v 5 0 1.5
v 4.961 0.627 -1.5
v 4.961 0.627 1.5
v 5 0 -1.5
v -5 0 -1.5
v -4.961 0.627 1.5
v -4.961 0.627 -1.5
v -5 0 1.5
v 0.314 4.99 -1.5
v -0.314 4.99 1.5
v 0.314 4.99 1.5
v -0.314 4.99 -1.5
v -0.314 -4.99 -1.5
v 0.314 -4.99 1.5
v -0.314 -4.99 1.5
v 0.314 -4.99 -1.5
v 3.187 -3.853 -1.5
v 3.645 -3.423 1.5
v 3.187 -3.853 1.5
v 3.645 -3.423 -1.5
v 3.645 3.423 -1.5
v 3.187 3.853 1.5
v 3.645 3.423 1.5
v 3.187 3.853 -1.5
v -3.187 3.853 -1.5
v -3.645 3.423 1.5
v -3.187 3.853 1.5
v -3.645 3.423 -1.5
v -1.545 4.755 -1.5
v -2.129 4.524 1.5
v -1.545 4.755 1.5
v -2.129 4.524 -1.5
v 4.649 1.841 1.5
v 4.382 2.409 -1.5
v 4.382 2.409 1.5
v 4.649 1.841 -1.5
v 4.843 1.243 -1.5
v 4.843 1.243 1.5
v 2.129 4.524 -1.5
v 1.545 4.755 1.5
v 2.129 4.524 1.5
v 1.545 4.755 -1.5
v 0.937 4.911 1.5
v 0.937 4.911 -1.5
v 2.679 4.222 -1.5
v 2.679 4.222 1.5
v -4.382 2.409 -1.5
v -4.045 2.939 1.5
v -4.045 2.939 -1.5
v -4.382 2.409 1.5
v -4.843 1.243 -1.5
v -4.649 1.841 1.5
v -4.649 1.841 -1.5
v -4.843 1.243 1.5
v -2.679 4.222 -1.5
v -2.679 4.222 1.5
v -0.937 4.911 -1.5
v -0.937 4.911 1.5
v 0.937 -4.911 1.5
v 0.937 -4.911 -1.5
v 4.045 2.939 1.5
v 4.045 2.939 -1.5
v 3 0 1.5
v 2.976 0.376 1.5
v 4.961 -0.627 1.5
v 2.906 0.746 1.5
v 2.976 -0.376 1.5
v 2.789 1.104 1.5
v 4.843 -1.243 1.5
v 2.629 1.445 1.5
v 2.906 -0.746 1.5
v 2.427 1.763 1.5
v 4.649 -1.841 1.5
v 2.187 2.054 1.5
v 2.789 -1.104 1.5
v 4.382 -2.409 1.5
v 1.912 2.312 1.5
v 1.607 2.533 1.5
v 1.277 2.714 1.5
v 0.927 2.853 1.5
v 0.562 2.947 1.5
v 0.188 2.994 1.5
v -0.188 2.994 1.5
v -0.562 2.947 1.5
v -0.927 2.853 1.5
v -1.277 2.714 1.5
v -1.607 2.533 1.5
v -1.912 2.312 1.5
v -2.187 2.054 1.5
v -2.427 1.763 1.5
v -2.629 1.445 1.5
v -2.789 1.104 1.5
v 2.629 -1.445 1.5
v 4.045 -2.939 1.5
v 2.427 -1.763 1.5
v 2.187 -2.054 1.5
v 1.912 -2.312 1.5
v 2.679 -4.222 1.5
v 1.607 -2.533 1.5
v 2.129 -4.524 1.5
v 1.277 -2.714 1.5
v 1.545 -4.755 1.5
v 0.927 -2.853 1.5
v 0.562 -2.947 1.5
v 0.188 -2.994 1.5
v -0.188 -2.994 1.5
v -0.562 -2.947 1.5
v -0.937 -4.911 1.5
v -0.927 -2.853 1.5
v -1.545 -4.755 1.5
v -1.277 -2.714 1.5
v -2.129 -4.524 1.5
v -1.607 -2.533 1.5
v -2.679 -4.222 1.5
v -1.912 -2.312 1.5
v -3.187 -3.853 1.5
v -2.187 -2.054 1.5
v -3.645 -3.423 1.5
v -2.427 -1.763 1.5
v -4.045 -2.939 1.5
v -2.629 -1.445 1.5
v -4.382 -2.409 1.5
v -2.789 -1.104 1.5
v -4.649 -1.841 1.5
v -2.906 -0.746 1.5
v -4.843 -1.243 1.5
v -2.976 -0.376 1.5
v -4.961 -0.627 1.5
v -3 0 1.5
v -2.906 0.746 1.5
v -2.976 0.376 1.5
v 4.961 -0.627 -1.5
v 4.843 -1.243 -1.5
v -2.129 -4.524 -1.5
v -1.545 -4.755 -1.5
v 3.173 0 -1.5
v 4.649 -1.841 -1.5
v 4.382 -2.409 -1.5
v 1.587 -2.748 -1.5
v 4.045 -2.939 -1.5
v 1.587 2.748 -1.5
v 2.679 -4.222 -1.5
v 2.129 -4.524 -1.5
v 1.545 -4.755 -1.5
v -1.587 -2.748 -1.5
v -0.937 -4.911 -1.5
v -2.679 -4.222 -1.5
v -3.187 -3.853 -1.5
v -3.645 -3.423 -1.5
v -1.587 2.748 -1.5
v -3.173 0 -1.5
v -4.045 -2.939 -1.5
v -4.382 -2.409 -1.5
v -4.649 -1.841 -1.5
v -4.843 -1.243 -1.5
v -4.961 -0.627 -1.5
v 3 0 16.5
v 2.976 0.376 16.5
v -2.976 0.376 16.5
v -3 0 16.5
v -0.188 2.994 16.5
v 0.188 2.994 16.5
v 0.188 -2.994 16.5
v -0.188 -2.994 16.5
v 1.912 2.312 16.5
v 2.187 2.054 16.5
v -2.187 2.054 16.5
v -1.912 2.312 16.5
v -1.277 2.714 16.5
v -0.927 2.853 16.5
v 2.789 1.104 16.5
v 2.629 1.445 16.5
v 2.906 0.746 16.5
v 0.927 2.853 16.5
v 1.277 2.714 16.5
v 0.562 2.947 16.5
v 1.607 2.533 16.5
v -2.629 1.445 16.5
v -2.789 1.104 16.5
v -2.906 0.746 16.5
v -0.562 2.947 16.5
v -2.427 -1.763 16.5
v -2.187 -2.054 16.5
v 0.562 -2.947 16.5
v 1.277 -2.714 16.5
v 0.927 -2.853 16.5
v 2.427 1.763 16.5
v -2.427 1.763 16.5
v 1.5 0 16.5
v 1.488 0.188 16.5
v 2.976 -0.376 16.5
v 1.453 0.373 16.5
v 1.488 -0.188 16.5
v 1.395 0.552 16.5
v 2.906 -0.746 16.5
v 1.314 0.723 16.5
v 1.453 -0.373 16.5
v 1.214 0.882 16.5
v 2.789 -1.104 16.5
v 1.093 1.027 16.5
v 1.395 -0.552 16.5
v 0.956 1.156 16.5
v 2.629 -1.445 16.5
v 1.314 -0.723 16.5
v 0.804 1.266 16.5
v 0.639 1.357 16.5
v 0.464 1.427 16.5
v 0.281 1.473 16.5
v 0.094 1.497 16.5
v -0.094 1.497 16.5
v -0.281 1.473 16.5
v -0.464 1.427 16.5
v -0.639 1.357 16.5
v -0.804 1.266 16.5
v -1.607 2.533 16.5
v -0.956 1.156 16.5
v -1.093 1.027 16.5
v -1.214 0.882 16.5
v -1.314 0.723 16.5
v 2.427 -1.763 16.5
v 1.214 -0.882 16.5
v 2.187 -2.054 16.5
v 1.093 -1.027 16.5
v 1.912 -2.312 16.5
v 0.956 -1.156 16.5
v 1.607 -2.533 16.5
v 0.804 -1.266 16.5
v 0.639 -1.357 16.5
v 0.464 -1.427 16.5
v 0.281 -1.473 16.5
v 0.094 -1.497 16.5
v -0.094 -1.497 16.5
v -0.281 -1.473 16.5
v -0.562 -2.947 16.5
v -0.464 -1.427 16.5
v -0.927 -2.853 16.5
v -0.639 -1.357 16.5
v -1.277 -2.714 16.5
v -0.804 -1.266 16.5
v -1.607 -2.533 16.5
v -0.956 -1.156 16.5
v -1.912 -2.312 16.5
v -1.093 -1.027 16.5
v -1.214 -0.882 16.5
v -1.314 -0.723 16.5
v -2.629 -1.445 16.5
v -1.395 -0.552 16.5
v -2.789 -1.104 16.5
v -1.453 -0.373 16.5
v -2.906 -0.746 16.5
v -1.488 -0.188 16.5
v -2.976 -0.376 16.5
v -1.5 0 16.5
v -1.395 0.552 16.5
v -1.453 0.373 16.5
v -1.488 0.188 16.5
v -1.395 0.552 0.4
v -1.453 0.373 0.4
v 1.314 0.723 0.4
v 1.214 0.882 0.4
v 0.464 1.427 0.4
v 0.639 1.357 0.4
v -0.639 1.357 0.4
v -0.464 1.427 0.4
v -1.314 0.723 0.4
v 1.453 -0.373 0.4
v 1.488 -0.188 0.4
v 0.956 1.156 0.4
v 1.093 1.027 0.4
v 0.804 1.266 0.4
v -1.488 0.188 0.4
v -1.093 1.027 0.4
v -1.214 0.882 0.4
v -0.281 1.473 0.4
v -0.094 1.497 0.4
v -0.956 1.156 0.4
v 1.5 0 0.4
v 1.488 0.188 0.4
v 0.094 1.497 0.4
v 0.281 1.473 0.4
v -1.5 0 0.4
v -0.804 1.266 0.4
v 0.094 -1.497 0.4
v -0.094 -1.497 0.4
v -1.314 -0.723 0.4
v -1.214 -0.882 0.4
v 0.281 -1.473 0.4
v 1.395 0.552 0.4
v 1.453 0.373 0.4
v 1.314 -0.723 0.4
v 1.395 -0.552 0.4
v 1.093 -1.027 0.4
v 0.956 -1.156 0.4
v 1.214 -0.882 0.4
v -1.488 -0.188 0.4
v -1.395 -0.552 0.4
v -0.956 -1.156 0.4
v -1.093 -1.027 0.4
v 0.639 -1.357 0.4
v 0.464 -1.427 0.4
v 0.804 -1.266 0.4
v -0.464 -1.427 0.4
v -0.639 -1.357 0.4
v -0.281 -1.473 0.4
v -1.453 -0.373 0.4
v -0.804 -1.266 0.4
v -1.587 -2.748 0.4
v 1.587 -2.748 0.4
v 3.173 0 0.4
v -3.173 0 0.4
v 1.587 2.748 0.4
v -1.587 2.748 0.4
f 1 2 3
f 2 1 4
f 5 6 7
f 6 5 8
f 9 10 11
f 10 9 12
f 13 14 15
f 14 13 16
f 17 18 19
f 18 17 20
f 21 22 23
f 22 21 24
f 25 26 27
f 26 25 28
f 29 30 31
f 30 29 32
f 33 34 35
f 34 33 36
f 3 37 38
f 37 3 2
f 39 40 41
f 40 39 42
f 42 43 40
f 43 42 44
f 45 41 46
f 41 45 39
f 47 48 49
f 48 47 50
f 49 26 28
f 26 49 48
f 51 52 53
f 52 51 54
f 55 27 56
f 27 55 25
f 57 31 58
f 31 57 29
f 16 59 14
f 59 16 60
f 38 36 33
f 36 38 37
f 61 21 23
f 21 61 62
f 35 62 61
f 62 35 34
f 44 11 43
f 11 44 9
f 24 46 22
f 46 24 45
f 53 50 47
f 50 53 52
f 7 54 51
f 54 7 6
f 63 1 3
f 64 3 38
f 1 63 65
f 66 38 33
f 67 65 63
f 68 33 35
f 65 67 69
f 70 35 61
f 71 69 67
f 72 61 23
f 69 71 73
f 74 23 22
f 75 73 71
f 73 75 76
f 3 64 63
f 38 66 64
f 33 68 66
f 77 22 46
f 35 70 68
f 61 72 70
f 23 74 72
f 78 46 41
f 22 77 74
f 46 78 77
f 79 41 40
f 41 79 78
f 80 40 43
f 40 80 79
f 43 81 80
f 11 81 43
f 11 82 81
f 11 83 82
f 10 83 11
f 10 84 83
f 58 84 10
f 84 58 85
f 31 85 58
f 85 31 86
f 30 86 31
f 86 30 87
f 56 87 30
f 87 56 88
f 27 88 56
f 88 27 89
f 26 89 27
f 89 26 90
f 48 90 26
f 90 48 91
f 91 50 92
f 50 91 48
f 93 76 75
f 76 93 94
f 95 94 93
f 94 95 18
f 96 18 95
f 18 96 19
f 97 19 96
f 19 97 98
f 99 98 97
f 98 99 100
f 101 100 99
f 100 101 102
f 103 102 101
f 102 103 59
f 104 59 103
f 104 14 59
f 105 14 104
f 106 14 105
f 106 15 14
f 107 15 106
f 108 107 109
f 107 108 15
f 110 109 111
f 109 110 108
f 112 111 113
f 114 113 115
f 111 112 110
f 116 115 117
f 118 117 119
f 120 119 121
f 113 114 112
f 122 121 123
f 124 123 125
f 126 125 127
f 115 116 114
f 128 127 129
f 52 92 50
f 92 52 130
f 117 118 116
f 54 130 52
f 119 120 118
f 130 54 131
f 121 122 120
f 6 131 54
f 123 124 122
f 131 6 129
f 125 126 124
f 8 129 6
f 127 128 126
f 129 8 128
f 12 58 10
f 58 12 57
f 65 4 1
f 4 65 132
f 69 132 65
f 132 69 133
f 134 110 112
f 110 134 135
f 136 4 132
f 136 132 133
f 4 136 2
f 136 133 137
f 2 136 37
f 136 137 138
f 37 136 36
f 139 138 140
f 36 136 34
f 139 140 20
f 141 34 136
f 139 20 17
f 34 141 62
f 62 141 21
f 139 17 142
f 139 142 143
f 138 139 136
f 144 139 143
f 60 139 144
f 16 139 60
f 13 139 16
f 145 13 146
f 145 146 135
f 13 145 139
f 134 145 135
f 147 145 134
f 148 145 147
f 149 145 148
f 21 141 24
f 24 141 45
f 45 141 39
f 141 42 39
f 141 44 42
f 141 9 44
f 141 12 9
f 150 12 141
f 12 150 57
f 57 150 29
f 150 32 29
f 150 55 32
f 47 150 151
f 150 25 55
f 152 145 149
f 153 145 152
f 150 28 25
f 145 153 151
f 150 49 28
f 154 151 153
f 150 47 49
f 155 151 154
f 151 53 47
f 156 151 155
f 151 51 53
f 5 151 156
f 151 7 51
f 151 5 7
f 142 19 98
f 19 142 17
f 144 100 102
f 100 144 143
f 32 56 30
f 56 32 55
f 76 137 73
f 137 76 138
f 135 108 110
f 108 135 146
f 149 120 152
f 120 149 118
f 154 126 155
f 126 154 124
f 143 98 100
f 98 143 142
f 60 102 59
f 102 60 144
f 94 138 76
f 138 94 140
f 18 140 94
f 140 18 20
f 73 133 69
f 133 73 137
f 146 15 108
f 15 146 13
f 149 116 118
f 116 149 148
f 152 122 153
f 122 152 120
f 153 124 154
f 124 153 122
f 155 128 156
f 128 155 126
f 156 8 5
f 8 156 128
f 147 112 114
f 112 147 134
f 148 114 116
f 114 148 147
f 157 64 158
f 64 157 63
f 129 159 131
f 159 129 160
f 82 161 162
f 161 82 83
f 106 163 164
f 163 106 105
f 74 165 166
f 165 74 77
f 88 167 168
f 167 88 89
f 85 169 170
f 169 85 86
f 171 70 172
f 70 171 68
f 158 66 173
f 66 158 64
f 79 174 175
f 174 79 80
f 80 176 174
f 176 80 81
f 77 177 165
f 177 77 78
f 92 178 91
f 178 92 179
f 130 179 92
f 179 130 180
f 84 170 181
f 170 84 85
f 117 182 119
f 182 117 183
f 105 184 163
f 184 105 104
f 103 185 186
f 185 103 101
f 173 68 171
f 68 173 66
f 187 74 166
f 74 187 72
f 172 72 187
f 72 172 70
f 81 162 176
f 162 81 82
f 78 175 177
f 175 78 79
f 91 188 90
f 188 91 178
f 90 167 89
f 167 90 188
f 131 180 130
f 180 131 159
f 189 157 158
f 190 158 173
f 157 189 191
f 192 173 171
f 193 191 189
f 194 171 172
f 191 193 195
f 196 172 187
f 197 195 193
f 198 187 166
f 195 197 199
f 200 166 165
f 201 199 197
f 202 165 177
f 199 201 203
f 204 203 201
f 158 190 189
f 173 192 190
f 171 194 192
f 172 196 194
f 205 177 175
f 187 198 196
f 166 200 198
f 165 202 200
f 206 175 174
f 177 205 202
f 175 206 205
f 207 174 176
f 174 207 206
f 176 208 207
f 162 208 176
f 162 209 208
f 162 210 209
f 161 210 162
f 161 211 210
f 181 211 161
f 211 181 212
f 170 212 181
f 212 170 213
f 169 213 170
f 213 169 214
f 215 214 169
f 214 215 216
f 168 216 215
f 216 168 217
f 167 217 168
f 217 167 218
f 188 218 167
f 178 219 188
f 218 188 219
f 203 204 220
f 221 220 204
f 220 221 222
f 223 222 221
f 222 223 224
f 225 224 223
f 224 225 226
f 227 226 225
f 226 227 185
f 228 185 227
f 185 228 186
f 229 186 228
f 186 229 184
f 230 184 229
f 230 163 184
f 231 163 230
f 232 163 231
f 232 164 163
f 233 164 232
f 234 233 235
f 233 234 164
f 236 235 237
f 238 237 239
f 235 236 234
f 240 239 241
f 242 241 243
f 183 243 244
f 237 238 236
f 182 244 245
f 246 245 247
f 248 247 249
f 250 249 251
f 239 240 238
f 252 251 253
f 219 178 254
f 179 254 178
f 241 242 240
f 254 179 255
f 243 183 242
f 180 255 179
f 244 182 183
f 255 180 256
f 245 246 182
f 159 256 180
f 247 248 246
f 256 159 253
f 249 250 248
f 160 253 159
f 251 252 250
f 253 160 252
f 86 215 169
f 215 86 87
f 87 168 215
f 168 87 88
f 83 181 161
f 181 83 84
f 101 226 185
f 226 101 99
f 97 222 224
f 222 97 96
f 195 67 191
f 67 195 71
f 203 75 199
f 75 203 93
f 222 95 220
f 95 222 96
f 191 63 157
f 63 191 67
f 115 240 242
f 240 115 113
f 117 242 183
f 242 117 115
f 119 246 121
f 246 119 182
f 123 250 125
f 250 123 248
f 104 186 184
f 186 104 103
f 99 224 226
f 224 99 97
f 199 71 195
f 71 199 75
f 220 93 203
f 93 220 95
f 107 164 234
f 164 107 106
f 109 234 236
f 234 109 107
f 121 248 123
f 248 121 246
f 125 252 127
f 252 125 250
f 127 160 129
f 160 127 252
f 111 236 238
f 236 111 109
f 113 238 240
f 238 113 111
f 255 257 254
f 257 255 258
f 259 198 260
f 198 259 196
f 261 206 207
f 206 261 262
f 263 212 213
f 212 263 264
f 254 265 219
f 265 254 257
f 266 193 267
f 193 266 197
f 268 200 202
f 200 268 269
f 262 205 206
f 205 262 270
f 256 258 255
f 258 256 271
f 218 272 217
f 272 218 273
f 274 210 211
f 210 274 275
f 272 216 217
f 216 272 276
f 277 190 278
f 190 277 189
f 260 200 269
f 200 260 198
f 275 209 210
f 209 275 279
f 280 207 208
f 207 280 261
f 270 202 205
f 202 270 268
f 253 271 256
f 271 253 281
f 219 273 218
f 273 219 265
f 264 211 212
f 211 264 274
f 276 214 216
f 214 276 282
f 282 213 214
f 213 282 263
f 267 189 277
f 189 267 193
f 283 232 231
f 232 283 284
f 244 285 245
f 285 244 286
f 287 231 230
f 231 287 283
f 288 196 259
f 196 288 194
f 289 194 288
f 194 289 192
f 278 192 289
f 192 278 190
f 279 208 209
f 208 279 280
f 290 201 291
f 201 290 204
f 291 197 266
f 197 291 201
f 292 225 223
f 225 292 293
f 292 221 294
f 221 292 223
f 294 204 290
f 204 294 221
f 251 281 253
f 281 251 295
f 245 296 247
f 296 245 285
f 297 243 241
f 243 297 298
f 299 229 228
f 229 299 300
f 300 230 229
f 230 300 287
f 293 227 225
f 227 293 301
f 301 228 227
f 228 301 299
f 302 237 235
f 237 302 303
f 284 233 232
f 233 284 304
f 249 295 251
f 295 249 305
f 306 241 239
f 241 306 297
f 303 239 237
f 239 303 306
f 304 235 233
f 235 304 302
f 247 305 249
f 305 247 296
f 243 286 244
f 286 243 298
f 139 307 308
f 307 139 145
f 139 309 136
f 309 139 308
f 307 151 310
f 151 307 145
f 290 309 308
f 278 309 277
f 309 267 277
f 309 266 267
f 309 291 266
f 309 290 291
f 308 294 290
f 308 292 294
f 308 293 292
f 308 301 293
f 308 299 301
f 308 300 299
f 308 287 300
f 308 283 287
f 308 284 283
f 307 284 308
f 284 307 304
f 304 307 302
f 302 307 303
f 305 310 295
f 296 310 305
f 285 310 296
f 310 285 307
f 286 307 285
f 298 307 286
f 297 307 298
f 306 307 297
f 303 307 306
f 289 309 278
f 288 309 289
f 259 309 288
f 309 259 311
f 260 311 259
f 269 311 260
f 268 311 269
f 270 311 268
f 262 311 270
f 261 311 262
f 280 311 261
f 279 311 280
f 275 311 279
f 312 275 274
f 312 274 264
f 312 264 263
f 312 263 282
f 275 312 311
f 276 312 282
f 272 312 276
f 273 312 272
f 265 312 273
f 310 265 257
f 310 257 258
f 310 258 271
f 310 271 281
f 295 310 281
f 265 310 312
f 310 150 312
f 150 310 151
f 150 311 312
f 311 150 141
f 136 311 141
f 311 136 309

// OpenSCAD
$fn = 50;


difference() {
	union() {
		translate(v = [0, 0, -1.5000000000]) {
			rotate(a = [0, 0, 0]) {
				cylinder(h = 3, r = 5.0000000000);
			}
		}
		translate(v = [0, 0, -1.5000000000]) {
			rotate(a = [0, 0, 0]) {
				cylinder(h = 18, r = 3.0000000000);
			}
		}
	}
	union() {
		translate(v = [0, 0, -125.0000000000]) {
			rotate(a = [0, 0, 0]) {
				cylinder(h = 250, r = 1.5000000000);
			}
		}
		translate(v = [0, 0, -2.1000000000]) {
			rotate(a = [0, 0, 0]) {
				#translate(v = [0, 0, 0]) {
					rotate(a = [0, 0, 0]) {
						linear_extrude(height = 2.5000000000) {
							polygon(points = [[3.1735000000, 0.0000000000], [1.5867500000, 2.7483316189], [-1.5867500000, 2.7483316189], [-3.1735000000, 0.0000000000], [-1.5867500000, -2.7483316189], [1.5867500000, -2.7483316189]]);
						}
					}
				}
			}
		}
	}
}
